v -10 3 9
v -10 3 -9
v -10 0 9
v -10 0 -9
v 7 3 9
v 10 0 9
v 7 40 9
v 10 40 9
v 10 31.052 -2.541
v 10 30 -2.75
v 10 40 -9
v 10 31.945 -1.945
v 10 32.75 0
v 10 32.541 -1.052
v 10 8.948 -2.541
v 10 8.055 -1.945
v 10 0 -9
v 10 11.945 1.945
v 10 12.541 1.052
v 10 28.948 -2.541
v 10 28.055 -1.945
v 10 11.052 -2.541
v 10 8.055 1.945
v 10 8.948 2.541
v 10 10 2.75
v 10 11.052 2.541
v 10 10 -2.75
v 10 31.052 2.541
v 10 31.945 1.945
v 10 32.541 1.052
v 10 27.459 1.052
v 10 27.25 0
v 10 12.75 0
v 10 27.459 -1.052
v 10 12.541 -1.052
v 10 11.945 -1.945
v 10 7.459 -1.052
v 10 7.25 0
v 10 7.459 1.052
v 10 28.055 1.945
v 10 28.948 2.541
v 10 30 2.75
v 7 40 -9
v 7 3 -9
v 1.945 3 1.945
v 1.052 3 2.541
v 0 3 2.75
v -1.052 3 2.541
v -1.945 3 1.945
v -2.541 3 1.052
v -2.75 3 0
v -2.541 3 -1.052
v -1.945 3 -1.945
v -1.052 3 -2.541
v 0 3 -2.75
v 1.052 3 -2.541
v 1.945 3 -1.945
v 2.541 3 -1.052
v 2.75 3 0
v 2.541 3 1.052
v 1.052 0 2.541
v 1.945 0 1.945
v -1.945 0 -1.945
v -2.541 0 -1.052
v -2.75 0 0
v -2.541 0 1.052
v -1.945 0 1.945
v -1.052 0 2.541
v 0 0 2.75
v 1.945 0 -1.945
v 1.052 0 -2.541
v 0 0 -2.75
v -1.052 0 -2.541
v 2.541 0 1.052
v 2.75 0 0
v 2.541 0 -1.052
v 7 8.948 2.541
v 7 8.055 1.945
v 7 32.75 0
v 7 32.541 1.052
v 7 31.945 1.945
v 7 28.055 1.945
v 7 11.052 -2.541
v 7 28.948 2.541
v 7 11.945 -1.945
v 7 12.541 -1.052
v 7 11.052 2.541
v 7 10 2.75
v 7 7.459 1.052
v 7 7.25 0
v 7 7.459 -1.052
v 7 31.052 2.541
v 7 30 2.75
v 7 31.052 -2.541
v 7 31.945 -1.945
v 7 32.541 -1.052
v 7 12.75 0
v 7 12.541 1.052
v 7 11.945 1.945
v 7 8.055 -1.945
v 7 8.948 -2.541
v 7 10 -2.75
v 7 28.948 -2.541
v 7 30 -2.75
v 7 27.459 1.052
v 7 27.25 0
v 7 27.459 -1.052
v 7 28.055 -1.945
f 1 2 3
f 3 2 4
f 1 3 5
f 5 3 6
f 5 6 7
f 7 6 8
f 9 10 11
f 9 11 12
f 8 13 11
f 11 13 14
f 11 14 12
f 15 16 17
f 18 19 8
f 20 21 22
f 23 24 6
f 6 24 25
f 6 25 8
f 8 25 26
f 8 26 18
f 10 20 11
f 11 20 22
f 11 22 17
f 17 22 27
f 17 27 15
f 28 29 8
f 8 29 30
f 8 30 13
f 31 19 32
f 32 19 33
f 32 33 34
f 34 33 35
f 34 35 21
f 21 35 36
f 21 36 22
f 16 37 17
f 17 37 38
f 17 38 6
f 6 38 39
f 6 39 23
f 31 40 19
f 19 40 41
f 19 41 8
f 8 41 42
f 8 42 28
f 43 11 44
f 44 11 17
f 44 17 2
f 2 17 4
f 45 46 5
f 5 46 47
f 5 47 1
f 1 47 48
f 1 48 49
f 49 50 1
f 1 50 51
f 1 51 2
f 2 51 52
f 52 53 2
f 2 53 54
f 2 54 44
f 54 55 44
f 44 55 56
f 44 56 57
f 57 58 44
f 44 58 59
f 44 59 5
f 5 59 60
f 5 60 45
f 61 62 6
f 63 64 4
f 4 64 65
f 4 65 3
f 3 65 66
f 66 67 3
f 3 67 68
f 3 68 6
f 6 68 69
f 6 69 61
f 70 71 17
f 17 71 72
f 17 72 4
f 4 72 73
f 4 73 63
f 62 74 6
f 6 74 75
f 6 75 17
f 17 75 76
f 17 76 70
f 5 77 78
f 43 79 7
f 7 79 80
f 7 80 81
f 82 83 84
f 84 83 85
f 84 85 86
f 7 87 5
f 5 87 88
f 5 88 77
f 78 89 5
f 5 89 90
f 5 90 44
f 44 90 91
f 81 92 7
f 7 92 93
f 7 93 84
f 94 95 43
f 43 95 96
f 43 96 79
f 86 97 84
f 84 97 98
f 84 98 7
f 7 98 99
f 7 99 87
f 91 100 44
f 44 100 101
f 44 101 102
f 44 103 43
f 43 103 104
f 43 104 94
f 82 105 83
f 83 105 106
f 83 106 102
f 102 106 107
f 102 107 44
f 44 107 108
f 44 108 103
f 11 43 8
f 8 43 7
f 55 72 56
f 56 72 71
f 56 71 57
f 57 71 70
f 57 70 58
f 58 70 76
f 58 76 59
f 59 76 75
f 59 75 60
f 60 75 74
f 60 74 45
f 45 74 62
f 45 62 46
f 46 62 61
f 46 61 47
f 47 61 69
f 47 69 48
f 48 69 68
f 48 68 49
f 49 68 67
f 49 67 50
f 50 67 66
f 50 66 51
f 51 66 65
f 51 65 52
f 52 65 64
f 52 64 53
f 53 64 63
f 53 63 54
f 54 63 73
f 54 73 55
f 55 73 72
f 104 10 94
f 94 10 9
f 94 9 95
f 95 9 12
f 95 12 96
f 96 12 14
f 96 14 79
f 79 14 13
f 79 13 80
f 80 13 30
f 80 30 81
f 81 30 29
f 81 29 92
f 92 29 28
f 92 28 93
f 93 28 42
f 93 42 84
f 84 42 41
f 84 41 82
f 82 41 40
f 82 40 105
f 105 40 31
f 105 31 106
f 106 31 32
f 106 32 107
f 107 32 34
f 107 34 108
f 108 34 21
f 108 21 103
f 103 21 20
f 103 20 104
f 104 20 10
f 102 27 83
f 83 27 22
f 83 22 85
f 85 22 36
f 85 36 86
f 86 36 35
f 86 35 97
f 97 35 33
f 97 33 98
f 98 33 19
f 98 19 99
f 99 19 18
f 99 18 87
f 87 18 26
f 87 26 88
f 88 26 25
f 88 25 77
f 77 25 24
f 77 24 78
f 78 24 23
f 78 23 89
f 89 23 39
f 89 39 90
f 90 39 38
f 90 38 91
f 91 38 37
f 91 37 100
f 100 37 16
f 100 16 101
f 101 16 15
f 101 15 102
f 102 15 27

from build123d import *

# Parameters (mm, degrees)
SKETCH_1_W          = 20
SKETCH_1_H          = 18
EXTRUDE_1_DEPTH     = 3
SKETCH_2_W          = 3
SKETCH_2_H          = 18
EXTRUDE_2_DEPTH     = 37
SKETCH_4_R          = 2.75
CUT_EXTRUDE_1_DEPTH = 41
SKETCH_5_R          = 2.75
CUT_EXTRUDE_2_DEPTH = 21


with BuildPart() as part:
    # 草图1 → 凸台-拉伸1 (new body)
    with BuildSketch(Plane(origin=(0, 0, 0), x_dir=(1, 0, 0), z_dir=(0, 1, 0))):
        Rectangle(SKETCH_1_W, SKETCH_1_H)
    extrude(amount=EXTRUDE_1_DEPTH)

    # 草图2 → 凸台-拉伸2 (add)
    with BuildSketch(Plane(origin=(0, 3, 0), x_dir=(1, 0, 0), z_dir=(0, 1, 0))):
        with Locations((8.5, 0)):
            Rectangle(SKETCH_2_W, SKETCH_2_H)
    extrude(amount=EXTRUDE_2_DEPTH)

    # 草图4 → 切除-拉伸1 (cut, through all)
    with BuildSketch(Plane.XZ):
        Circle(SKETCH_4_R)
    extrude(amount=-CUT_EXTRUDE_1_DEPTH, mode=Mode.SUBTRACT)

    # 草图5 → 切除-拉伸2 (cut, through all)
    with BuildSketch(Plane(origin=(10, 0, 0), x_dir=(0, 0, -1), z_dir=(1, 0, 0))):
        with Locations((0, 10)):
            Circle(SKETCH_5_R)
        with Locations((0, 30)):
            Circle(SKETCH_5_R)
    extrude(amount=-CUT_EXTRUDE_2_DEPTH, mode=Mode.SUBTRACT)


solid = part.part
